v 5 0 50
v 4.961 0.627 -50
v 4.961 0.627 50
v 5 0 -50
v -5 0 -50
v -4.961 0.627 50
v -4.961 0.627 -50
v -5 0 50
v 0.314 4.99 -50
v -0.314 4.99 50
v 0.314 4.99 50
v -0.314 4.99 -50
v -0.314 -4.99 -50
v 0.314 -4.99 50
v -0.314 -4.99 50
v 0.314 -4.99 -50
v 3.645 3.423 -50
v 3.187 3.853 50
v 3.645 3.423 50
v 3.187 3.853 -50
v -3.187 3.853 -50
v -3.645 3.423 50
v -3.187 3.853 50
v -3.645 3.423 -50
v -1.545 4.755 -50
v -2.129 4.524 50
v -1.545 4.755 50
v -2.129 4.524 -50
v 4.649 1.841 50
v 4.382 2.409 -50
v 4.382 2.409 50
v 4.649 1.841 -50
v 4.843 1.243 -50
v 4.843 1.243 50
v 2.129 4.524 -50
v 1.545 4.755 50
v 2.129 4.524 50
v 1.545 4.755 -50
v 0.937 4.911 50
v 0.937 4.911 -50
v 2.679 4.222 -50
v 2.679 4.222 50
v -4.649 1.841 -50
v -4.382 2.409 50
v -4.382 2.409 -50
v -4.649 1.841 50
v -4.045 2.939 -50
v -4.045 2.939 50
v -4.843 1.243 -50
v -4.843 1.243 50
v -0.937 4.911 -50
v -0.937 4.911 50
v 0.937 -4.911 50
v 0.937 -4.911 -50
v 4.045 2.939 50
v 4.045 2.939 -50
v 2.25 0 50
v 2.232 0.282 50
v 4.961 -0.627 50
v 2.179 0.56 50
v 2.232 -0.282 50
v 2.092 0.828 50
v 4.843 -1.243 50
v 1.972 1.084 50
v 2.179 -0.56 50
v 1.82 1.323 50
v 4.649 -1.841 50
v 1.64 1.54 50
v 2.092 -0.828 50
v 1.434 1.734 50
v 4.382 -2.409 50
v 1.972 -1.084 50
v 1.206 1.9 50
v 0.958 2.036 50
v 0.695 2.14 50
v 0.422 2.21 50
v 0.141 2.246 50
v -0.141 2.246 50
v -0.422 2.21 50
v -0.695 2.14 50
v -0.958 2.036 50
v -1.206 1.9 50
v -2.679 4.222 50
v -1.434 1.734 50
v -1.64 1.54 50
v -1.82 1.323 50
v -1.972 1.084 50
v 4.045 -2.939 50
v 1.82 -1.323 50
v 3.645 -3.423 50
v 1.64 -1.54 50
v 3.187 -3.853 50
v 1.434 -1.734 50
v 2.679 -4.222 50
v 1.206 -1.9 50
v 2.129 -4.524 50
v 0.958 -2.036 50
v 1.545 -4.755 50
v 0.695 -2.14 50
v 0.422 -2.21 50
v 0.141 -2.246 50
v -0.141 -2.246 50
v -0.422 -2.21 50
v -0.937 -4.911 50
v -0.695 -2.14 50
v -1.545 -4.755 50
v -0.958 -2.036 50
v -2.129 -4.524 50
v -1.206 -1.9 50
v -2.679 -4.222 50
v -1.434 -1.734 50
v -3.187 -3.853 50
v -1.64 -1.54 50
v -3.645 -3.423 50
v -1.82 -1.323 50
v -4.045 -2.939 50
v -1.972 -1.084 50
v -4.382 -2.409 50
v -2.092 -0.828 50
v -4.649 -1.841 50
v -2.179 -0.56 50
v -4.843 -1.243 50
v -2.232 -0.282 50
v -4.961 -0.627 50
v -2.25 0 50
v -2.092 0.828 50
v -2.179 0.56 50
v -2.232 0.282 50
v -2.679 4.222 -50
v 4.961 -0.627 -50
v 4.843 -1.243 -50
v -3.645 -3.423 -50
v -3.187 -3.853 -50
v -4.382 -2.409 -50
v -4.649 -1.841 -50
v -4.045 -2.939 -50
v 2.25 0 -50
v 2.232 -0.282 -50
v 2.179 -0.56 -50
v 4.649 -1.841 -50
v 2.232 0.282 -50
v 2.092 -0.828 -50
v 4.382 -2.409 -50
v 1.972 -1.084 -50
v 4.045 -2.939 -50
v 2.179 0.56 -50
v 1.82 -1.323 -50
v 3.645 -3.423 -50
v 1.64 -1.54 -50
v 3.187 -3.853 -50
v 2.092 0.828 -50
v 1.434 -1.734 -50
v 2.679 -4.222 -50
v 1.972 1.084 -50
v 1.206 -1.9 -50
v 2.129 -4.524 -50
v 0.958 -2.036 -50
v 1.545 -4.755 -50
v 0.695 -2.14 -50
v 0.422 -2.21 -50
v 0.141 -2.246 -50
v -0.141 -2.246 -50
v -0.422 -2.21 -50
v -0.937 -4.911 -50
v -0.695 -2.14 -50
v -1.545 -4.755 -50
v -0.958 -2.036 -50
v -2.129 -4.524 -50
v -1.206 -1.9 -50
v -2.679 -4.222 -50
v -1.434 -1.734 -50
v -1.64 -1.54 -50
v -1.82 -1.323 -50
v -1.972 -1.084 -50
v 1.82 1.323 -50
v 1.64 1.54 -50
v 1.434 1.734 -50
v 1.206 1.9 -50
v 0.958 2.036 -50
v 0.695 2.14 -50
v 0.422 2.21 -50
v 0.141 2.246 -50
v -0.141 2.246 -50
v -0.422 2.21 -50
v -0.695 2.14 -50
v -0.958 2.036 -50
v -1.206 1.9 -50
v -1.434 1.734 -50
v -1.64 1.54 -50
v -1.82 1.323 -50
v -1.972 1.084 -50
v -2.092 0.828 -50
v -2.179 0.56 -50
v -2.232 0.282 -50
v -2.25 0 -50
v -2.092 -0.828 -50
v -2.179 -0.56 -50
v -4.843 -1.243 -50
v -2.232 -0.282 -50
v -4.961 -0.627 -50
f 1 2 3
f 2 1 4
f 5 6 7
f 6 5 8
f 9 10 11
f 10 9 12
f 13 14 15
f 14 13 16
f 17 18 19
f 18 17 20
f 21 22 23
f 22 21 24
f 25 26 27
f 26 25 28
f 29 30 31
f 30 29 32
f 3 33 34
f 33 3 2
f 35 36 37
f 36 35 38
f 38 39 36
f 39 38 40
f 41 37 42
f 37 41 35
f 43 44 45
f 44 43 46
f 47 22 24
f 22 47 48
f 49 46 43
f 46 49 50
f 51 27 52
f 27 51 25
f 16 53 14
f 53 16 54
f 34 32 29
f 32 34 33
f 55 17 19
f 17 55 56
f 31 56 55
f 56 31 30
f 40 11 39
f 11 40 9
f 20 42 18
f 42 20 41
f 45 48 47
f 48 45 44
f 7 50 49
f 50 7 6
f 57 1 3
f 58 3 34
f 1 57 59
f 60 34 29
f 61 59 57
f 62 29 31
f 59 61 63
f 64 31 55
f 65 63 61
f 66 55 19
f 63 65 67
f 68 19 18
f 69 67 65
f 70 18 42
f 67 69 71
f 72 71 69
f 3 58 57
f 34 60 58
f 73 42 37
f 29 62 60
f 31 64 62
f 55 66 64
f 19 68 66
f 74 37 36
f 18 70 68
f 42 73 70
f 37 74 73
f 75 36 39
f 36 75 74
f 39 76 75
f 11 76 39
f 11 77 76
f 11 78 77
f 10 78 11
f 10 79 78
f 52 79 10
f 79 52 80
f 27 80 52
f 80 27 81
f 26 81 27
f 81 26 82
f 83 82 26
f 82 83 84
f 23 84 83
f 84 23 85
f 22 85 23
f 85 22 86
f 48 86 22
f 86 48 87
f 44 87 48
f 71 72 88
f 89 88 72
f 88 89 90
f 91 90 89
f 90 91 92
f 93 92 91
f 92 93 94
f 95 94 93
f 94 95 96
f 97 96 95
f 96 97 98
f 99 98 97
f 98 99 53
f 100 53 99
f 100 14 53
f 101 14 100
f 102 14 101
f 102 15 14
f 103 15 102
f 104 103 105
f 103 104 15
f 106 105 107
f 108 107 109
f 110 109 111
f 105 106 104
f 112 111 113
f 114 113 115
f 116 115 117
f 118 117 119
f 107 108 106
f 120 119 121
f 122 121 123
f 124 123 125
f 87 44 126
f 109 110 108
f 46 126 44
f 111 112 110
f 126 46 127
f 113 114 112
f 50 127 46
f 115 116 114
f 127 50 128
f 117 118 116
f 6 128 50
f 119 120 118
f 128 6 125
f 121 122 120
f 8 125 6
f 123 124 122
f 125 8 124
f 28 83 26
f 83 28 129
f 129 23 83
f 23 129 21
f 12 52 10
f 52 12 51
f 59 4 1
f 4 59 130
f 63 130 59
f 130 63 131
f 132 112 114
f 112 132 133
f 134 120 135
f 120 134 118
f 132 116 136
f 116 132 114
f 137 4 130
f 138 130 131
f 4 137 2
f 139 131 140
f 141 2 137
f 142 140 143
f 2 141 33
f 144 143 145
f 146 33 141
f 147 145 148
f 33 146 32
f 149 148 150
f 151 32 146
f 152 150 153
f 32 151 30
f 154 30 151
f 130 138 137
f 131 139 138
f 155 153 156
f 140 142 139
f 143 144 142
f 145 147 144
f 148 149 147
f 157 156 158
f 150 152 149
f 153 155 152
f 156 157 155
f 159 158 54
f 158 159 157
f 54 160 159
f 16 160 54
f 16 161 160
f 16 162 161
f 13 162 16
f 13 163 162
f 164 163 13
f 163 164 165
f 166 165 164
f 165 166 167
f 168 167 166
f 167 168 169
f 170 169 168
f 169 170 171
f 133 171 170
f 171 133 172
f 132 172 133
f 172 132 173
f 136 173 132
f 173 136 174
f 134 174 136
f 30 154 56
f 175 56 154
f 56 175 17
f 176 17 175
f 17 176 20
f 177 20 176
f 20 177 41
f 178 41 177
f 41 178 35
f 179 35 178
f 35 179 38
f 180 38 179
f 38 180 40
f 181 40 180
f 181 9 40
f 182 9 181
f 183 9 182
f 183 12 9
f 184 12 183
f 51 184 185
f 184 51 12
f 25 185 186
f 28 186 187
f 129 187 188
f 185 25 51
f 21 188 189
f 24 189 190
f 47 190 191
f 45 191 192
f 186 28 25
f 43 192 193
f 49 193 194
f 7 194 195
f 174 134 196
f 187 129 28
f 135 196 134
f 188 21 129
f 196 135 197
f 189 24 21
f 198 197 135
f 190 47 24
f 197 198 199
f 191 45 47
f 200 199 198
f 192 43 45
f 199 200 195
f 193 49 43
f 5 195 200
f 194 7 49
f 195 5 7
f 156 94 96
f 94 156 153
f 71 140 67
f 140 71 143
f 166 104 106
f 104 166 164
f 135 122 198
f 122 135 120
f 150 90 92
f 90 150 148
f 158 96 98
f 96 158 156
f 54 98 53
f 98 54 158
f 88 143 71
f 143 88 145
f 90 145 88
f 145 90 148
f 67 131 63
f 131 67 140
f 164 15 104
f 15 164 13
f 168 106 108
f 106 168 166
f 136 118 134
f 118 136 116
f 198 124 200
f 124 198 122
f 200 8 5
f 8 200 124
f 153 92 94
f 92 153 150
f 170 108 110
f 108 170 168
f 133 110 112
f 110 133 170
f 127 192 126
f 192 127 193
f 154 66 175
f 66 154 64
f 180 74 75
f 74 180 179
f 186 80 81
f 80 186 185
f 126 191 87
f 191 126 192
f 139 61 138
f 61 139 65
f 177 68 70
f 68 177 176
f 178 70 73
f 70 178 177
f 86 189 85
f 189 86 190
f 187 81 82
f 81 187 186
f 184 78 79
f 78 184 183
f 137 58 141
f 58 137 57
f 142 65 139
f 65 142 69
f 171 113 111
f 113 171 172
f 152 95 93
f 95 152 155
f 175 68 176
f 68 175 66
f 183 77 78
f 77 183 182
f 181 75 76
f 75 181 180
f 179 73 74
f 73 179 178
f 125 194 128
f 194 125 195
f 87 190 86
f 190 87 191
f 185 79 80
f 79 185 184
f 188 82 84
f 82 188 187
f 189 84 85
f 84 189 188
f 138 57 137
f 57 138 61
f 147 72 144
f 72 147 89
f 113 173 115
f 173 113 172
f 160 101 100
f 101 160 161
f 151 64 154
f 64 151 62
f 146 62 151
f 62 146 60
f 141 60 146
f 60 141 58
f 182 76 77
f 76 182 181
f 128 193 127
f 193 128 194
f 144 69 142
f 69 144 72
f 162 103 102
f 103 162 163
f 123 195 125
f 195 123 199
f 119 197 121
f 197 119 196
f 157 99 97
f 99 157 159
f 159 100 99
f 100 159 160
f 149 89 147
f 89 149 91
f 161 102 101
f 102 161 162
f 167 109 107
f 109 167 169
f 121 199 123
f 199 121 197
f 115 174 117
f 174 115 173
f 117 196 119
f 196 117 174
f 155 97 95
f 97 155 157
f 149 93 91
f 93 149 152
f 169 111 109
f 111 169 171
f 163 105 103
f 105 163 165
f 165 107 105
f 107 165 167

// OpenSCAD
$fn = 50;


difference() {
	union() {
		translate(v = [0, 0, -50.0000000000]) {
			cylinder(h = 100, r = 5.0000000000);
		}
	}
	union() {
		translate(v = [0, 0, -100.0000000000]) {
			cylinder(h = 200, r = 2.2500000000);
		}
	}
}
